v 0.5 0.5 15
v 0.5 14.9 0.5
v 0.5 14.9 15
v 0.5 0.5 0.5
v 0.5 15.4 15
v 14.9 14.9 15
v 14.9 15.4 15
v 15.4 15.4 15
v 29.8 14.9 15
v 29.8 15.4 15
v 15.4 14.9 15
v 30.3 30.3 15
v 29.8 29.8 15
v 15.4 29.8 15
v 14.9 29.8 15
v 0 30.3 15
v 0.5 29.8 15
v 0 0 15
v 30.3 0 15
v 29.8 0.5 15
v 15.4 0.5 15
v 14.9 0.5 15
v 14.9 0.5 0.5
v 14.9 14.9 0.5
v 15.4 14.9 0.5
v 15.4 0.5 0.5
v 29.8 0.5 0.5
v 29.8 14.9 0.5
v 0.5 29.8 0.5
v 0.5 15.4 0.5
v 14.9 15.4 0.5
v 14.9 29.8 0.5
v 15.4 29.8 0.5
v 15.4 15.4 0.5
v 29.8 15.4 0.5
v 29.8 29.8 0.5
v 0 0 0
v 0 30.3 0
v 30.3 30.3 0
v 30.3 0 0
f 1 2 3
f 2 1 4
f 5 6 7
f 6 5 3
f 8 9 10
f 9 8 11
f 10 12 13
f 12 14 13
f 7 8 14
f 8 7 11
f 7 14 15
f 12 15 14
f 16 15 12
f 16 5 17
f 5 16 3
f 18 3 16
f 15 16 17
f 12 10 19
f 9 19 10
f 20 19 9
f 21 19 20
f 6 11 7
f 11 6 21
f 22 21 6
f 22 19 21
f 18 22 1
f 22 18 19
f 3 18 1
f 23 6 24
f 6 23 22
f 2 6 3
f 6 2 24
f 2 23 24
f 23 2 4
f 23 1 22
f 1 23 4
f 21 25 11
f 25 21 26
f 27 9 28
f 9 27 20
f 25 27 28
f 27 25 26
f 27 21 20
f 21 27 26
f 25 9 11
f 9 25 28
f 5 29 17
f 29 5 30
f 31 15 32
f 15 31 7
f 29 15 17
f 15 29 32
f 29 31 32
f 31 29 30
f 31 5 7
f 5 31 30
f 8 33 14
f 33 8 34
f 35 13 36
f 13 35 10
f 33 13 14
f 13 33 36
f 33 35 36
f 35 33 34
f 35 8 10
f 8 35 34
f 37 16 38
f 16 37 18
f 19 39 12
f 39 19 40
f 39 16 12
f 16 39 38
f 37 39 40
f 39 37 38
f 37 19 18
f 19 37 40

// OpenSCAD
//aa sizes = 14.0, 14.33, 14.25
aa_d = 14.3 + 0.1;
aaa_d = 10.3 + 0.1;
cell_d = aa_d;

rows = 2;
cols = 2;

wall_d = 0.5;

base_w = cols * (cell_d + wall_d) + wall_d;
base_l = rows * (cell_d + wall_d) + wall_d;
base_h = 15;

render(convexity = 2)

difference()
{
    cube([base_w, base_l, base_h]);

    union()
    {
        for(r = [0:rows-1])
        {
            for(c = [0:cols-1])
            {
                x = c * (cell_d + wall_d) + wall_d;
                y = r * (cell_d + wall_d) + wall_d;
                translate([x, y, wall_d])
                {
                    cube([cell_d, cell_d, base_h - wall_d]);
                }
            }
        }
    }
}
